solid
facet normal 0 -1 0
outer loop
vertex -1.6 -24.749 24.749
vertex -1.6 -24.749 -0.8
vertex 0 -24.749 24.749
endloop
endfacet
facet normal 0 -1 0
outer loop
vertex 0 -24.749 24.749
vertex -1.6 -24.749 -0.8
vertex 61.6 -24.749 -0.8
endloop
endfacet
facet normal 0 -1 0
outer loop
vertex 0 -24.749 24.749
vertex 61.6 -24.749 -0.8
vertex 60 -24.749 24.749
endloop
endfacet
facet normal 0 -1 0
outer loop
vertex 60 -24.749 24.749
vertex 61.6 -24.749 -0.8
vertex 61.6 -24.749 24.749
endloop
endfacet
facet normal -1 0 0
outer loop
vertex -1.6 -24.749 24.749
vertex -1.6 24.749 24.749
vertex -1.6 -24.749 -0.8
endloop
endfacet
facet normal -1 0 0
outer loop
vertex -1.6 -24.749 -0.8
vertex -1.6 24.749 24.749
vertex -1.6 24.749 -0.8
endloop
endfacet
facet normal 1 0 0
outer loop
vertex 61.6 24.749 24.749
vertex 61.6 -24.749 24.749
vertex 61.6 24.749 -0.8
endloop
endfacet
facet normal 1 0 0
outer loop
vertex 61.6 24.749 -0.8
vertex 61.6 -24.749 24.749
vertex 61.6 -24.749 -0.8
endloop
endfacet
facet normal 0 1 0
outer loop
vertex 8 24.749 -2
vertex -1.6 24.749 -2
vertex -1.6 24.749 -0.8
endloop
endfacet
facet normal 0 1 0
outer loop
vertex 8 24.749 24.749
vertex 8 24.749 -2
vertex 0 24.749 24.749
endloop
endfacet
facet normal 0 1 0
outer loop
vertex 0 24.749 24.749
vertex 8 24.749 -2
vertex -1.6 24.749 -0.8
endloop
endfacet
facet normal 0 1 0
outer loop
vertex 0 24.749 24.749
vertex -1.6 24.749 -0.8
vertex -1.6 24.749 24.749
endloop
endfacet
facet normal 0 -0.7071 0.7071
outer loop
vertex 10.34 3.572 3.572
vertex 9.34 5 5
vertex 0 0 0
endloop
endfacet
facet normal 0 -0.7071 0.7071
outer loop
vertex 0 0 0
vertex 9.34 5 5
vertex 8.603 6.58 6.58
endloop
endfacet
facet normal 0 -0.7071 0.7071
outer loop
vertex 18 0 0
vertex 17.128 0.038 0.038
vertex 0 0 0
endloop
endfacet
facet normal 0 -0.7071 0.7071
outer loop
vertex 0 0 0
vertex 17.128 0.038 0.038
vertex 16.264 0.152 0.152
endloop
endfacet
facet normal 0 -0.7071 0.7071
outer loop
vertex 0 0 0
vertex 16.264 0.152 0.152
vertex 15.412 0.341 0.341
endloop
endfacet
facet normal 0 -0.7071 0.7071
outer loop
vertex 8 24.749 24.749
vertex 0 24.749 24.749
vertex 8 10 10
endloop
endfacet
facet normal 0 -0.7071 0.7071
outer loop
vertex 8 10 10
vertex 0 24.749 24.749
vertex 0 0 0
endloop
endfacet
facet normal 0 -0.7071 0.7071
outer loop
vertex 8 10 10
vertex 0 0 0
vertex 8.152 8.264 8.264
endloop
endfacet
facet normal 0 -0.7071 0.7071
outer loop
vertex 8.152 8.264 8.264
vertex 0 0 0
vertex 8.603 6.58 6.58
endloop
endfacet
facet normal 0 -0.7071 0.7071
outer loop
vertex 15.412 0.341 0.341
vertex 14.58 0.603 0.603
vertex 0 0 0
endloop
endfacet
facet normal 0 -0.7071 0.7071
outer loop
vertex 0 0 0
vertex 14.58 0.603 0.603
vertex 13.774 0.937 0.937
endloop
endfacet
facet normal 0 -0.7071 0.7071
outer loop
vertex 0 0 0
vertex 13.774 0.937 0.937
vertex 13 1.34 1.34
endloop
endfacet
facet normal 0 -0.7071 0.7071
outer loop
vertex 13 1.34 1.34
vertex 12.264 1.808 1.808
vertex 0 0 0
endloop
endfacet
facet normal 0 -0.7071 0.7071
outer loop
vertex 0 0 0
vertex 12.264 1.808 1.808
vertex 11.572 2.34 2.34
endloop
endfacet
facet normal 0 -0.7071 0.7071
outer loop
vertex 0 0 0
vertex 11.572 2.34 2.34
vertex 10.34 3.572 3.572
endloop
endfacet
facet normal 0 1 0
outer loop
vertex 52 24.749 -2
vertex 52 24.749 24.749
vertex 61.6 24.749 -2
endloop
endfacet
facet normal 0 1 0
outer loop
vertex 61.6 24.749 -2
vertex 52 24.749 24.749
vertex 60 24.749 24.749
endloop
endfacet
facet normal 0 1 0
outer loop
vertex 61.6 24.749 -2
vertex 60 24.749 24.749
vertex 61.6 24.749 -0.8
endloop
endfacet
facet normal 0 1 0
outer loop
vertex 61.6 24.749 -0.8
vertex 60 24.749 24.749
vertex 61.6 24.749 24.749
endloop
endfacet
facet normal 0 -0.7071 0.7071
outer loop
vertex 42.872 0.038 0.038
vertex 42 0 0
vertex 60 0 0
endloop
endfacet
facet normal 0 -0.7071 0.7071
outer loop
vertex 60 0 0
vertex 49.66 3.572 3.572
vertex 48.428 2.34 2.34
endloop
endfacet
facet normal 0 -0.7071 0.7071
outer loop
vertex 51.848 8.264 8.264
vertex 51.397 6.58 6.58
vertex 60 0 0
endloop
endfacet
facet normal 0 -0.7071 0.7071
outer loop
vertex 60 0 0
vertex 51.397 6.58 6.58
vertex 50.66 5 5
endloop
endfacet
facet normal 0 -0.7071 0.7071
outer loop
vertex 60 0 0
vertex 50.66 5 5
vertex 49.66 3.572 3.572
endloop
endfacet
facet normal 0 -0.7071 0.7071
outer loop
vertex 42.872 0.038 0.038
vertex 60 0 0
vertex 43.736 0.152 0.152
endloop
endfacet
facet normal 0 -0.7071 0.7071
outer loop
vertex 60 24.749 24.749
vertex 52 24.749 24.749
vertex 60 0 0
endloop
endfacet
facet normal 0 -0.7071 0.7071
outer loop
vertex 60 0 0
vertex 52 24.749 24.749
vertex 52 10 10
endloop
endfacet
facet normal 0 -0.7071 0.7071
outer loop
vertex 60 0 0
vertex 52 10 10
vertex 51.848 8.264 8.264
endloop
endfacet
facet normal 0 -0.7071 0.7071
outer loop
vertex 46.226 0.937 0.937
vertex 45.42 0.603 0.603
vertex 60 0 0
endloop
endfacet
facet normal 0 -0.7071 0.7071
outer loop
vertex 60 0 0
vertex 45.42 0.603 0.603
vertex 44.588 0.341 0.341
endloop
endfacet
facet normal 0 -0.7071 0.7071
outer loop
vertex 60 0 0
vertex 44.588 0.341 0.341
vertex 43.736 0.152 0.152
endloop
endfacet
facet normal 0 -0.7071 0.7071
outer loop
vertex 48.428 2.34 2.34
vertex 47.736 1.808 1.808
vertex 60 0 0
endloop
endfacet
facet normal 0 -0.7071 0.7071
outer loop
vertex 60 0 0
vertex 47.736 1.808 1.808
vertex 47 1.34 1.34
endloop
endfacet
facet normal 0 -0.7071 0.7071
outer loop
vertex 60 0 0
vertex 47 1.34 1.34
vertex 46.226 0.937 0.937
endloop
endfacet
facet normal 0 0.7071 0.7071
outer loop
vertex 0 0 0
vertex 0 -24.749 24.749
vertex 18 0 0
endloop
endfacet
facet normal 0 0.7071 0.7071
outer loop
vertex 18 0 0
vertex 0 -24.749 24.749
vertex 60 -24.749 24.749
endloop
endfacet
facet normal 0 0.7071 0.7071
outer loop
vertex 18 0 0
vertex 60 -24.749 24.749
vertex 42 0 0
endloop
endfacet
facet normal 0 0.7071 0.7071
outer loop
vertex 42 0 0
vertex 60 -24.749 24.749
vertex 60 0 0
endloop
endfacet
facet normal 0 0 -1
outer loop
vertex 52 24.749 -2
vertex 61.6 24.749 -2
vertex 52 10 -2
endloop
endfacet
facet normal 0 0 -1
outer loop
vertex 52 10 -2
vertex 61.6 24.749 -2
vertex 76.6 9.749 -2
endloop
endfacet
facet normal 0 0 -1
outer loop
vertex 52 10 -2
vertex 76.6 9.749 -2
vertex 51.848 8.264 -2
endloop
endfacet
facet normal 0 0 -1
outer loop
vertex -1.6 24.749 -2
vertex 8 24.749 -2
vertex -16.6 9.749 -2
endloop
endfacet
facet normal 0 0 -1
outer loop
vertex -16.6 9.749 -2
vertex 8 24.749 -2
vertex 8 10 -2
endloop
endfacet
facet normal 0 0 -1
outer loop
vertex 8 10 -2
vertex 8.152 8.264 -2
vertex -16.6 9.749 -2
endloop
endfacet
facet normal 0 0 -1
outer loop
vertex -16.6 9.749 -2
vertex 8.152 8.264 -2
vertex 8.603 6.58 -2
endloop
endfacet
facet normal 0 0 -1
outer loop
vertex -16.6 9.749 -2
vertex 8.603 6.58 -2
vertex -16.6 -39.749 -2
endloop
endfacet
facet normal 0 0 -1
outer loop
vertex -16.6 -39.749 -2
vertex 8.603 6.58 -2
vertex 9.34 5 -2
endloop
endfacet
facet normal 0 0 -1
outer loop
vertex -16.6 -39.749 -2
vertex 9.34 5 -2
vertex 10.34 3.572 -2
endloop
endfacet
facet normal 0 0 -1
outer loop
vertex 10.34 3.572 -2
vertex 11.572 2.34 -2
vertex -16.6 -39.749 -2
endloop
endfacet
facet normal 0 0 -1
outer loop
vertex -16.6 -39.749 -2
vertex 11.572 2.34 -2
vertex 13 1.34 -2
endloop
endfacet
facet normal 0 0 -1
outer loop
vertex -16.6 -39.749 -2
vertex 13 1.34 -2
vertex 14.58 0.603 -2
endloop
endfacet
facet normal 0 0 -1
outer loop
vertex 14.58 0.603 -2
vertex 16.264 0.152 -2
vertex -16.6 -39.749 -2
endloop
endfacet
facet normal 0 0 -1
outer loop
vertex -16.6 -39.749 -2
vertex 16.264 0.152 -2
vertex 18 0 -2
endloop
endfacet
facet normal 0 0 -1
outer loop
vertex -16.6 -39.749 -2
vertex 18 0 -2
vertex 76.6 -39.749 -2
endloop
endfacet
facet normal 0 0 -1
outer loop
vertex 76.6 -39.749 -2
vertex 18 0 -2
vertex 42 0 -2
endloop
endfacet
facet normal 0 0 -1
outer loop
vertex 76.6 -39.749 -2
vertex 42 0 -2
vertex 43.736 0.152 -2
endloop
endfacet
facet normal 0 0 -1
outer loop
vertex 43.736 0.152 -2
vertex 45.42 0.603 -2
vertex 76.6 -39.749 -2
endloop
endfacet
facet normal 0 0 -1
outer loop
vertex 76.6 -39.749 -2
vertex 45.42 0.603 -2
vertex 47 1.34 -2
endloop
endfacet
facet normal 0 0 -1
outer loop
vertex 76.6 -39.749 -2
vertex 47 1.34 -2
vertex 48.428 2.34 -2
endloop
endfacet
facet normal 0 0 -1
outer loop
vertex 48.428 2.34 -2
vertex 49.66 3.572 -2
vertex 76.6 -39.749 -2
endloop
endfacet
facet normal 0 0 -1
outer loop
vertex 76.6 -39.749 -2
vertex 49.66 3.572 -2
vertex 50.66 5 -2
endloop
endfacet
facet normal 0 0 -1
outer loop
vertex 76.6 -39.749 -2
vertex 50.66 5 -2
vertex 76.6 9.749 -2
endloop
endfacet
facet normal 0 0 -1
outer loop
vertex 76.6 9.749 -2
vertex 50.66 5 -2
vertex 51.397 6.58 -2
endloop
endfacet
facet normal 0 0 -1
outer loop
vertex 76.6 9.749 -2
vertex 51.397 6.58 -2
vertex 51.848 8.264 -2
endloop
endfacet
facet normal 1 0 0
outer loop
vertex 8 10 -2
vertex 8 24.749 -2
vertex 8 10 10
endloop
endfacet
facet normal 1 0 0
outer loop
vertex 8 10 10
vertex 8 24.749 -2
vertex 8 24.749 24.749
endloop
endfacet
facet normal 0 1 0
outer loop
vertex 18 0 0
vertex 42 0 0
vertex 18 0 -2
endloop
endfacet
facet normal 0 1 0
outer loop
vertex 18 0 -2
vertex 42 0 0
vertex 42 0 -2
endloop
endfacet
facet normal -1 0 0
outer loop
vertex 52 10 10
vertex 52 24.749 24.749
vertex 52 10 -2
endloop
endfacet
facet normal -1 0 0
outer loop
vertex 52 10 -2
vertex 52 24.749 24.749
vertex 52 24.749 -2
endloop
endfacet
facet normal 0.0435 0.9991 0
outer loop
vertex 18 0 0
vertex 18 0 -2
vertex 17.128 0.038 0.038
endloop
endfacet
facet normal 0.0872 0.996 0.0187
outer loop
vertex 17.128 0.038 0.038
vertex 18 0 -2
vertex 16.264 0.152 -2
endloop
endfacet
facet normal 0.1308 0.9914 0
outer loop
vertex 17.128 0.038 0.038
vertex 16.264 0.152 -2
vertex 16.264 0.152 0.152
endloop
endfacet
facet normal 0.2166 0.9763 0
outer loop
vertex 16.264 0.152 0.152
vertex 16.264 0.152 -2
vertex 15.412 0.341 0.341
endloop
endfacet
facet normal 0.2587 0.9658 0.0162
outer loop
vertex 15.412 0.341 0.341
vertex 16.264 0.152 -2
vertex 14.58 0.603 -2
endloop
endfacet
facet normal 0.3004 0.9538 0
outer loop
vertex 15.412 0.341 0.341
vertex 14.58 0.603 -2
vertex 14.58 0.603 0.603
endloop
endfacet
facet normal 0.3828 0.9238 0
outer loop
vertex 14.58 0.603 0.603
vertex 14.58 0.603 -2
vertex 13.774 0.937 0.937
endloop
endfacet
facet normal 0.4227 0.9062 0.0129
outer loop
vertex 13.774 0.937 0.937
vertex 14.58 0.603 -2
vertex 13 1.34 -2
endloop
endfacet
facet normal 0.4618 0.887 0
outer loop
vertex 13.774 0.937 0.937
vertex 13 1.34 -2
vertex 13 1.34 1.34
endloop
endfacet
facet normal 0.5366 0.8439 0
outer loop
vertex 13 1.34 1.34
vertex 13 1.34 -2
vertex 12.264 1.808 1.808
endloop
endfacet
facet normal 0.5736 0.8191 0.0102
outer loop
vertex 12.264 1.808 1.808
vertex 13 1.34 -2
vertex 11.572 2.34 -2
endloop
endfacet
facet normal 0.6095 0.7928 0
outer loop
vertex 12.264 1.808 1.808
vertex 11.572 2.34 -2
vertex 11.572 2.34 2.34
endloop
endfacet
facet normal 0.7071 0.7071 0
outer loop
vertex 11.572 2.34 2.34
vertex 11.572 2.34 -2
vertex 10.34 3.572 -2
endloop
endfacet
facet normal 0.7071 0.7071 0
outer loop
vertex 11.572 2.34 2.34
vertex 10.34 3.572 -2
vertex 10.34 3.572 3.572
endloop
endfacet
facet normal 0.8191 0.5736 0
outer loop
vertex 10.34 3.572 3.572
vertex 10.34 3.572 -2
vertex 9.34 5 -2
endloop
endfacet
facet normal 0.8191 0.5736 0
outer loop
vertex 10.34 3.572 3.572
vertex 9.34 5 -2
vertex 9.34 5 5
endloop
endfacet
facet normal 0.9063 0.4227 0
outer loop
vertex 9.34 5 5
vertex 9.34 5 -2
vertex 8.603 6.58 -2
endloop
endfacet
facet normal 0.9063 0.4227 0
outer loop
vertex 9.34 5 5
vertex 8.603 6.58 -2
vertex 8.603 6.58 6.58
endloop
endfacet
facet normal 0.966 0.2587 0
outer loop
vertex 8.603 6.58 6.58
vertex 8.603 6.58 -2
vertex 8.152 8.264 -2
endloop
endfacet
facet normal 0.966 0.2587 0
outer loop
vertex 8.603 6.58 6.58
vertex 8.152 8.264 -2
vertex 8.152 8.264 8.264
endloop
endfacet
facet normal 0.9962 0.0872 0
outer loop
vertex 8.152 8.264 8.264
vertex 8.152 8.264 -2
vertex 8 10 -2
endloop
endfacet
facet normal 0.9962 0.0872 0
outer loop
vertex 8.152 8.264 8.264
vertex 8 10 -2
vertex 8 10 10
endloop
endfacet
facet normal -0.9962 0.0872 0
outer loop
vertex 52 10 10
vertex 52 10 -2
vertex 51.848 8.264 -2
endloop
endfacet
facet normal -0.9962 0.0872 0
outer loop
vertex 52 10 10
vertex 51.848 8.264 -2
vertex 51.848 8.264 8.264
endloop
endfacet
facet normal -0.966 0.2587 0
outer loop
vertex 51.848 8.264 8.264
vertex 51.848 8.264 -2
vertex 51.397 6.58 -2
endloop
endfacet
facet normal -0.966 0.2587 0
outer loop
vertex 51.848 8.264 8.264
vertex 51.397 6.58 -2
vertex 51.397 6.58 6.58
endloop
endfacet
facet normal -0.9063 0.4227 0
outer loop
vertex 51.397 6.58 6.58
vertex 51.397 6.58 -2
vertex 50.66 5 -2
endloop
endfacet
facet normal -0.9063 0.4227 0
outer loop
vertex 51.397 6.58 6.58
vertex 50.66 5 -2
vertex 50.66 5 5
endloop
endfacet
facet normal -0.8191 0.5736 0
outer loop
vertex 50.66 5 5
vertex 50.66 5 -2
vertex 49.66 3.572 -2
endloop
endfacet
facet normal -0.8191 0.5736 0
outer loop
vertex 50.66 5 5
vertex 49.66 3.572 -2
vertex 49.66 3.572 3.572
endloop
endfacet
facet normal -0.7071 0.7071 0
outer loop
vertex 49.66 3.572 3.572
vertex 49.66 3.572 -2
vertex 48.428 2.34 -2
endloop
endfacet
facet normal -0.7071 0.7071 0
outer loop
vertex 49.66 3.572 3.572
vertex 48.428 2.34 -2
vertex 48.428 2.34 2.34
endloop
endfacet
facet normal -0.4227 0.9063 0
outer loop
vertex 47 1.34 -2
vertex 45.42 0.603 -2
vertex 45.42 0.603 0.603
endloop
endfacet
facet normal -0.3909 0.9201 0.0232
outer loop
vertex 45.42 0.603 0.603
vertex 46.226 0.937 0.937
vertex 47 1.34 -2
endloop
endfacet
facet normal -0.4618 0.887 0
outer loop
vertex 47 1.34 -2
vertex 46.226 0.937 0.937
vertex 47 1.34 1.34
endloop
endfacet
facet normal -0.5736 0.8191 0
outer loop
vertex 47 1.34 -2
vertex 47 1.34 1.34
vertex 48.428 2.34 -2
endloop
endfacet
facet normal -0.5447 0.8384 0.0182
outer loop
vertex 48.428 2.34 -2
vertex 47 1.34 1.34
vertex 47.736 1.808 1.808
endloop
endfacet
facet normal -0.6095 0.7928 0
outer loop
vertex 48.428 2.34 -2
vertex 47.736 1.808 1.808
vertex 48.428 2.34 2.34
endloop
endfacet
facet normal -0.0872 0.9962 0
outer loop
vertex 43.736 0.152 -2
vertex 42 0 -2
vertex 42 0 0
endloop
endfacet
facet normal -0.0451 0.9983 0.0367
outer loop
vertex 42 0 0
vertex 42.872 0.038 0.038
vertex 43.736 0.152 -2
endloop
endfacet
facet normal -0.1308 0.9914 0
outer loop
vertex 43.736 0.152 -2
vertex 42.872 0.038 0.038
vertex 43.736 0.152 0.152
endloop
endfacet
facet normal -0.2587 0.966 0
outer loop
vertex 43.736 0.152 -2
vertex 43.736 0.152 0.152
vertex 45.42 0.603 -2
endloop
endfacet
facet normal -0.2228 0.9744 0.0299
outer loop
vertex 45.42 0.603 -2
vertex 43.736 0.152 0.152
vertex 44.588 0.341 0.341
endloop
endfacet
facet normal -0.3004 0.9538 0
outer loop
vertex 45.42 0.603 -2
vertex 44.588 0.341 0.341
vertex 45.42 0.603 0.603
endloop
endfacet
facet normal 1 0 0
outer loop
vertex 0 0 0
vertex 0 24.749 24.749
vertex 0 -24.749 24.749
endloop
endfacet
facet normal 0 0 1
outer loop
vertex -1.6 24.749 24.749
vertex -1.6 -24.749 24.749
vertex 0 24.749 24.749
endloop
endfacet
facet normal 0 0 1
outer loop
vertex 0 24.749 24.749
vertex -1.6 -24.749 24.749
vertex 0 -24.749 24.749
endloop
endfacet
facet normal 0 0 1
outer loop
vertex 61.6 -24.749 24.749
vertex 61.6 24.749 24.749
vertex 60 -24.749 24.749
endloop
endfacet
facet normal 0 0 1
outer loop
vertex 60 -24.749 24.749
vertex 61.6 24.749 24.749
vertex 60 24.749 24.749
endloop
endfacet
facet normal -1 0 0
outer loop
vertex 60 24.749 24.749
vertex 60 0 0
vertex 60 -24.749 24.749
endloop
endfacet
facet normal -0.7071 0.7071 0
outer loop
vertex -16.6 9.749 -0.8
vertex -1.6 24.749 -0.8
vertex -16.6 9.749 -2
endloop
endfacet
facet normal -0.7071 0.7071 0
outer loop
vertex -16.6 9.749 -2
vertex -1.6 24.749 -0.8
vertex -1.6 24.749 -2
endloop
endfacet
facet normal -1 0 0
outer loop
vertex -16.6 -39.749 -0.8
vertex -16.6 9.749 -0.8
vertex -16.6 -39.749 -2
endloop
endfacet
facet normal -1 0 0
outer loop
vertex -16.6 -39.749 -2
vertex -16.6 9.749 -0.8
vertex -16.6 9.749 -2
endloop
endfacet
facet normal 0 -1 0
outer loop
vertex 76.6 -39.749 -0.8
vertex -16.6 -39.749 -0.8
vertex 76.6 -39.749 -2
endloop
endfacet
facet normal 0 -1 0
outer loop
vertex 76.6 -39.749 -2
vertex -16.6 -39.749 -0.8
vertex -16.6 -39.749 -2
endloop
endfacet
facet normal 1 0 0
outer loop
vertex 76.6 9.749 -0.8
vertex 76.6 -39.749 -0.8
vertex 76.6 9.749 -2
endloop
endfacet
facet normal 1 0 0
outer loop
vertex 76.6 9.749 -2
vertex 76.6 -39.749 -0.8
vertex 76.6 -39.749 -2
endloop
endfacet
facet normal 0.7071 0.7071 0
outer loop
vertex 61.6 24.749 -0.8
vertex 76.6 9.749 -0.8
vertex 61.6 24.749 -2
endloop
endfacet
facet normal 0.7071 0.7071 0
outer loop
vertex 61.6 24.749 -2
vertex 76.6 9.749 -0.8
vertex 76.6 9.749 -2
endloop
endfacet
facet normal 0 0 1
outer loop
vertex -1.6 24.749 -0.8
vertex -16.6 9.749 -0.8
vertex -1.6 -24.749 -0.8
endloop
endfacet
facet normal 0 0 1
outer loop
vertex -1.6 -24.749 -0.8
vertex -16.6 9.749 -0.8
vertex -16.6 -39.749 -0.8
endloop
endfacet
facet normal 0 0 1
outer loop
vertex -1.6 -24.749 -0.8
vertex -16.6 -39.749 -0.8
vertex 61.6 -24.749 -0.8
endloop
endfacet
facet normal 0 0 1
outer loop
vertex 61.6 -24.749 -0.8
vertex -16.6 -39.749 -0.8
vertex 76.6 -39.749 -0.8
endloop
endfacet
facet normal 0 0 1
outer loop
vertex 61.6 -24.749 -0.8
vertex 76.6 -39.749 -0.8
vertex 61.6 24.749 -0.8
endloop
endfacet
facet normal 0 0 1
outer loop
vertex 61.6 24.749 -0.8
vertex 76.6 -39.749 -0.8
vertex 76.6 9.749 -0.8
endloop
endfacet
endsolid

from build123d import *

# Parameters (mm, degrees)
BOSS_EXTRUDE1_DEPTH = 60
SKETCH2_W           = 44
SKETCH2_H           = 24.748737342
CUT_EXTRUDE1_DEPTH  = 27.748737342
FILLET1_R           = 10
SKETCH5_W           = 26.748737342
SKETCH5_H           = 49.497474684
BOSS_EXTRUDE3_DEPTH = 1.6
BOSS_EXTRUDE4_DEPTH = 1.2


with BuildPart() as part:
    # Sketch1 → Boss-Extrude1 (new body)
    with BuildSketch(Plane(origin=(0, 0, 0), x_dir=(0, 0, -1), z_dir=(1, 0, 0))):
        Polygon((-24.748737342, 24.748737342), (0, 0), (-24.748737342, -24.748737342), (2, -24.748737342), (2, 24.748737342), align=None)
    extrude(amount=BOSS_EXTRUDE1_DEPTH)

    # Sketch2 → Cut-Extrude1 (cut, through all)
    with BuildSketch(Plane(origin=(0, 0, -2), x_dir=(-1, 0, 0), z_dir=(0, 0, -1))):
        with Locations((-30, 12.374368671)):
            Rectangle(SKETCH2_W, SKETCH2_H)
    extrude(amount=-CUT_EXTRUDE1_DEPTH, mode=Mode.SUBTRACT)

    # Fillet1
    fillet1_edges = [part.edges().sort_by_distance(p)[0] for p in [
        (8, 0, -1),
        (52, 0, -1),
    ]]
    fillet(fillet1_edges, radius=FILLET1_R)

    # Sketch5 → Boss-Extrude3 (add)
    with BuildSketch(Plane.ZY):
        with Locations((11.374368671, 0)):
            Rectangle(SKETCH5_W, SKETCH5_H)
    boss_extrude3 = extrude(amount=BOSS_EXTRUDE3_DEPTH)

    # Mirror1: Boss-Extrude3 across plane
    add(boss_extrude3.mirror(Plane.ZY.offset(-30)))

    # Sketch6 → Boss-Extrude4 (add)
    with BuildSketch(Plane(origin=(0, 0, -2), x_dir=(-1, 0, 0), z_dir=(0, 0, -1))):
        Polygon((1.6, 24.748737342), (16.6, 9.748737342), (16.6, -39.748737342), (-76.6, -39.748737342), (-76.6, 9.748737342), (-61.6, 24.748737342), (-61.6, -24.748737342), (1.6, -24.748737342), align=None)
    extrude(amount=-BOSS_EXTRUDE4_DEPTH)


solid = part.part
